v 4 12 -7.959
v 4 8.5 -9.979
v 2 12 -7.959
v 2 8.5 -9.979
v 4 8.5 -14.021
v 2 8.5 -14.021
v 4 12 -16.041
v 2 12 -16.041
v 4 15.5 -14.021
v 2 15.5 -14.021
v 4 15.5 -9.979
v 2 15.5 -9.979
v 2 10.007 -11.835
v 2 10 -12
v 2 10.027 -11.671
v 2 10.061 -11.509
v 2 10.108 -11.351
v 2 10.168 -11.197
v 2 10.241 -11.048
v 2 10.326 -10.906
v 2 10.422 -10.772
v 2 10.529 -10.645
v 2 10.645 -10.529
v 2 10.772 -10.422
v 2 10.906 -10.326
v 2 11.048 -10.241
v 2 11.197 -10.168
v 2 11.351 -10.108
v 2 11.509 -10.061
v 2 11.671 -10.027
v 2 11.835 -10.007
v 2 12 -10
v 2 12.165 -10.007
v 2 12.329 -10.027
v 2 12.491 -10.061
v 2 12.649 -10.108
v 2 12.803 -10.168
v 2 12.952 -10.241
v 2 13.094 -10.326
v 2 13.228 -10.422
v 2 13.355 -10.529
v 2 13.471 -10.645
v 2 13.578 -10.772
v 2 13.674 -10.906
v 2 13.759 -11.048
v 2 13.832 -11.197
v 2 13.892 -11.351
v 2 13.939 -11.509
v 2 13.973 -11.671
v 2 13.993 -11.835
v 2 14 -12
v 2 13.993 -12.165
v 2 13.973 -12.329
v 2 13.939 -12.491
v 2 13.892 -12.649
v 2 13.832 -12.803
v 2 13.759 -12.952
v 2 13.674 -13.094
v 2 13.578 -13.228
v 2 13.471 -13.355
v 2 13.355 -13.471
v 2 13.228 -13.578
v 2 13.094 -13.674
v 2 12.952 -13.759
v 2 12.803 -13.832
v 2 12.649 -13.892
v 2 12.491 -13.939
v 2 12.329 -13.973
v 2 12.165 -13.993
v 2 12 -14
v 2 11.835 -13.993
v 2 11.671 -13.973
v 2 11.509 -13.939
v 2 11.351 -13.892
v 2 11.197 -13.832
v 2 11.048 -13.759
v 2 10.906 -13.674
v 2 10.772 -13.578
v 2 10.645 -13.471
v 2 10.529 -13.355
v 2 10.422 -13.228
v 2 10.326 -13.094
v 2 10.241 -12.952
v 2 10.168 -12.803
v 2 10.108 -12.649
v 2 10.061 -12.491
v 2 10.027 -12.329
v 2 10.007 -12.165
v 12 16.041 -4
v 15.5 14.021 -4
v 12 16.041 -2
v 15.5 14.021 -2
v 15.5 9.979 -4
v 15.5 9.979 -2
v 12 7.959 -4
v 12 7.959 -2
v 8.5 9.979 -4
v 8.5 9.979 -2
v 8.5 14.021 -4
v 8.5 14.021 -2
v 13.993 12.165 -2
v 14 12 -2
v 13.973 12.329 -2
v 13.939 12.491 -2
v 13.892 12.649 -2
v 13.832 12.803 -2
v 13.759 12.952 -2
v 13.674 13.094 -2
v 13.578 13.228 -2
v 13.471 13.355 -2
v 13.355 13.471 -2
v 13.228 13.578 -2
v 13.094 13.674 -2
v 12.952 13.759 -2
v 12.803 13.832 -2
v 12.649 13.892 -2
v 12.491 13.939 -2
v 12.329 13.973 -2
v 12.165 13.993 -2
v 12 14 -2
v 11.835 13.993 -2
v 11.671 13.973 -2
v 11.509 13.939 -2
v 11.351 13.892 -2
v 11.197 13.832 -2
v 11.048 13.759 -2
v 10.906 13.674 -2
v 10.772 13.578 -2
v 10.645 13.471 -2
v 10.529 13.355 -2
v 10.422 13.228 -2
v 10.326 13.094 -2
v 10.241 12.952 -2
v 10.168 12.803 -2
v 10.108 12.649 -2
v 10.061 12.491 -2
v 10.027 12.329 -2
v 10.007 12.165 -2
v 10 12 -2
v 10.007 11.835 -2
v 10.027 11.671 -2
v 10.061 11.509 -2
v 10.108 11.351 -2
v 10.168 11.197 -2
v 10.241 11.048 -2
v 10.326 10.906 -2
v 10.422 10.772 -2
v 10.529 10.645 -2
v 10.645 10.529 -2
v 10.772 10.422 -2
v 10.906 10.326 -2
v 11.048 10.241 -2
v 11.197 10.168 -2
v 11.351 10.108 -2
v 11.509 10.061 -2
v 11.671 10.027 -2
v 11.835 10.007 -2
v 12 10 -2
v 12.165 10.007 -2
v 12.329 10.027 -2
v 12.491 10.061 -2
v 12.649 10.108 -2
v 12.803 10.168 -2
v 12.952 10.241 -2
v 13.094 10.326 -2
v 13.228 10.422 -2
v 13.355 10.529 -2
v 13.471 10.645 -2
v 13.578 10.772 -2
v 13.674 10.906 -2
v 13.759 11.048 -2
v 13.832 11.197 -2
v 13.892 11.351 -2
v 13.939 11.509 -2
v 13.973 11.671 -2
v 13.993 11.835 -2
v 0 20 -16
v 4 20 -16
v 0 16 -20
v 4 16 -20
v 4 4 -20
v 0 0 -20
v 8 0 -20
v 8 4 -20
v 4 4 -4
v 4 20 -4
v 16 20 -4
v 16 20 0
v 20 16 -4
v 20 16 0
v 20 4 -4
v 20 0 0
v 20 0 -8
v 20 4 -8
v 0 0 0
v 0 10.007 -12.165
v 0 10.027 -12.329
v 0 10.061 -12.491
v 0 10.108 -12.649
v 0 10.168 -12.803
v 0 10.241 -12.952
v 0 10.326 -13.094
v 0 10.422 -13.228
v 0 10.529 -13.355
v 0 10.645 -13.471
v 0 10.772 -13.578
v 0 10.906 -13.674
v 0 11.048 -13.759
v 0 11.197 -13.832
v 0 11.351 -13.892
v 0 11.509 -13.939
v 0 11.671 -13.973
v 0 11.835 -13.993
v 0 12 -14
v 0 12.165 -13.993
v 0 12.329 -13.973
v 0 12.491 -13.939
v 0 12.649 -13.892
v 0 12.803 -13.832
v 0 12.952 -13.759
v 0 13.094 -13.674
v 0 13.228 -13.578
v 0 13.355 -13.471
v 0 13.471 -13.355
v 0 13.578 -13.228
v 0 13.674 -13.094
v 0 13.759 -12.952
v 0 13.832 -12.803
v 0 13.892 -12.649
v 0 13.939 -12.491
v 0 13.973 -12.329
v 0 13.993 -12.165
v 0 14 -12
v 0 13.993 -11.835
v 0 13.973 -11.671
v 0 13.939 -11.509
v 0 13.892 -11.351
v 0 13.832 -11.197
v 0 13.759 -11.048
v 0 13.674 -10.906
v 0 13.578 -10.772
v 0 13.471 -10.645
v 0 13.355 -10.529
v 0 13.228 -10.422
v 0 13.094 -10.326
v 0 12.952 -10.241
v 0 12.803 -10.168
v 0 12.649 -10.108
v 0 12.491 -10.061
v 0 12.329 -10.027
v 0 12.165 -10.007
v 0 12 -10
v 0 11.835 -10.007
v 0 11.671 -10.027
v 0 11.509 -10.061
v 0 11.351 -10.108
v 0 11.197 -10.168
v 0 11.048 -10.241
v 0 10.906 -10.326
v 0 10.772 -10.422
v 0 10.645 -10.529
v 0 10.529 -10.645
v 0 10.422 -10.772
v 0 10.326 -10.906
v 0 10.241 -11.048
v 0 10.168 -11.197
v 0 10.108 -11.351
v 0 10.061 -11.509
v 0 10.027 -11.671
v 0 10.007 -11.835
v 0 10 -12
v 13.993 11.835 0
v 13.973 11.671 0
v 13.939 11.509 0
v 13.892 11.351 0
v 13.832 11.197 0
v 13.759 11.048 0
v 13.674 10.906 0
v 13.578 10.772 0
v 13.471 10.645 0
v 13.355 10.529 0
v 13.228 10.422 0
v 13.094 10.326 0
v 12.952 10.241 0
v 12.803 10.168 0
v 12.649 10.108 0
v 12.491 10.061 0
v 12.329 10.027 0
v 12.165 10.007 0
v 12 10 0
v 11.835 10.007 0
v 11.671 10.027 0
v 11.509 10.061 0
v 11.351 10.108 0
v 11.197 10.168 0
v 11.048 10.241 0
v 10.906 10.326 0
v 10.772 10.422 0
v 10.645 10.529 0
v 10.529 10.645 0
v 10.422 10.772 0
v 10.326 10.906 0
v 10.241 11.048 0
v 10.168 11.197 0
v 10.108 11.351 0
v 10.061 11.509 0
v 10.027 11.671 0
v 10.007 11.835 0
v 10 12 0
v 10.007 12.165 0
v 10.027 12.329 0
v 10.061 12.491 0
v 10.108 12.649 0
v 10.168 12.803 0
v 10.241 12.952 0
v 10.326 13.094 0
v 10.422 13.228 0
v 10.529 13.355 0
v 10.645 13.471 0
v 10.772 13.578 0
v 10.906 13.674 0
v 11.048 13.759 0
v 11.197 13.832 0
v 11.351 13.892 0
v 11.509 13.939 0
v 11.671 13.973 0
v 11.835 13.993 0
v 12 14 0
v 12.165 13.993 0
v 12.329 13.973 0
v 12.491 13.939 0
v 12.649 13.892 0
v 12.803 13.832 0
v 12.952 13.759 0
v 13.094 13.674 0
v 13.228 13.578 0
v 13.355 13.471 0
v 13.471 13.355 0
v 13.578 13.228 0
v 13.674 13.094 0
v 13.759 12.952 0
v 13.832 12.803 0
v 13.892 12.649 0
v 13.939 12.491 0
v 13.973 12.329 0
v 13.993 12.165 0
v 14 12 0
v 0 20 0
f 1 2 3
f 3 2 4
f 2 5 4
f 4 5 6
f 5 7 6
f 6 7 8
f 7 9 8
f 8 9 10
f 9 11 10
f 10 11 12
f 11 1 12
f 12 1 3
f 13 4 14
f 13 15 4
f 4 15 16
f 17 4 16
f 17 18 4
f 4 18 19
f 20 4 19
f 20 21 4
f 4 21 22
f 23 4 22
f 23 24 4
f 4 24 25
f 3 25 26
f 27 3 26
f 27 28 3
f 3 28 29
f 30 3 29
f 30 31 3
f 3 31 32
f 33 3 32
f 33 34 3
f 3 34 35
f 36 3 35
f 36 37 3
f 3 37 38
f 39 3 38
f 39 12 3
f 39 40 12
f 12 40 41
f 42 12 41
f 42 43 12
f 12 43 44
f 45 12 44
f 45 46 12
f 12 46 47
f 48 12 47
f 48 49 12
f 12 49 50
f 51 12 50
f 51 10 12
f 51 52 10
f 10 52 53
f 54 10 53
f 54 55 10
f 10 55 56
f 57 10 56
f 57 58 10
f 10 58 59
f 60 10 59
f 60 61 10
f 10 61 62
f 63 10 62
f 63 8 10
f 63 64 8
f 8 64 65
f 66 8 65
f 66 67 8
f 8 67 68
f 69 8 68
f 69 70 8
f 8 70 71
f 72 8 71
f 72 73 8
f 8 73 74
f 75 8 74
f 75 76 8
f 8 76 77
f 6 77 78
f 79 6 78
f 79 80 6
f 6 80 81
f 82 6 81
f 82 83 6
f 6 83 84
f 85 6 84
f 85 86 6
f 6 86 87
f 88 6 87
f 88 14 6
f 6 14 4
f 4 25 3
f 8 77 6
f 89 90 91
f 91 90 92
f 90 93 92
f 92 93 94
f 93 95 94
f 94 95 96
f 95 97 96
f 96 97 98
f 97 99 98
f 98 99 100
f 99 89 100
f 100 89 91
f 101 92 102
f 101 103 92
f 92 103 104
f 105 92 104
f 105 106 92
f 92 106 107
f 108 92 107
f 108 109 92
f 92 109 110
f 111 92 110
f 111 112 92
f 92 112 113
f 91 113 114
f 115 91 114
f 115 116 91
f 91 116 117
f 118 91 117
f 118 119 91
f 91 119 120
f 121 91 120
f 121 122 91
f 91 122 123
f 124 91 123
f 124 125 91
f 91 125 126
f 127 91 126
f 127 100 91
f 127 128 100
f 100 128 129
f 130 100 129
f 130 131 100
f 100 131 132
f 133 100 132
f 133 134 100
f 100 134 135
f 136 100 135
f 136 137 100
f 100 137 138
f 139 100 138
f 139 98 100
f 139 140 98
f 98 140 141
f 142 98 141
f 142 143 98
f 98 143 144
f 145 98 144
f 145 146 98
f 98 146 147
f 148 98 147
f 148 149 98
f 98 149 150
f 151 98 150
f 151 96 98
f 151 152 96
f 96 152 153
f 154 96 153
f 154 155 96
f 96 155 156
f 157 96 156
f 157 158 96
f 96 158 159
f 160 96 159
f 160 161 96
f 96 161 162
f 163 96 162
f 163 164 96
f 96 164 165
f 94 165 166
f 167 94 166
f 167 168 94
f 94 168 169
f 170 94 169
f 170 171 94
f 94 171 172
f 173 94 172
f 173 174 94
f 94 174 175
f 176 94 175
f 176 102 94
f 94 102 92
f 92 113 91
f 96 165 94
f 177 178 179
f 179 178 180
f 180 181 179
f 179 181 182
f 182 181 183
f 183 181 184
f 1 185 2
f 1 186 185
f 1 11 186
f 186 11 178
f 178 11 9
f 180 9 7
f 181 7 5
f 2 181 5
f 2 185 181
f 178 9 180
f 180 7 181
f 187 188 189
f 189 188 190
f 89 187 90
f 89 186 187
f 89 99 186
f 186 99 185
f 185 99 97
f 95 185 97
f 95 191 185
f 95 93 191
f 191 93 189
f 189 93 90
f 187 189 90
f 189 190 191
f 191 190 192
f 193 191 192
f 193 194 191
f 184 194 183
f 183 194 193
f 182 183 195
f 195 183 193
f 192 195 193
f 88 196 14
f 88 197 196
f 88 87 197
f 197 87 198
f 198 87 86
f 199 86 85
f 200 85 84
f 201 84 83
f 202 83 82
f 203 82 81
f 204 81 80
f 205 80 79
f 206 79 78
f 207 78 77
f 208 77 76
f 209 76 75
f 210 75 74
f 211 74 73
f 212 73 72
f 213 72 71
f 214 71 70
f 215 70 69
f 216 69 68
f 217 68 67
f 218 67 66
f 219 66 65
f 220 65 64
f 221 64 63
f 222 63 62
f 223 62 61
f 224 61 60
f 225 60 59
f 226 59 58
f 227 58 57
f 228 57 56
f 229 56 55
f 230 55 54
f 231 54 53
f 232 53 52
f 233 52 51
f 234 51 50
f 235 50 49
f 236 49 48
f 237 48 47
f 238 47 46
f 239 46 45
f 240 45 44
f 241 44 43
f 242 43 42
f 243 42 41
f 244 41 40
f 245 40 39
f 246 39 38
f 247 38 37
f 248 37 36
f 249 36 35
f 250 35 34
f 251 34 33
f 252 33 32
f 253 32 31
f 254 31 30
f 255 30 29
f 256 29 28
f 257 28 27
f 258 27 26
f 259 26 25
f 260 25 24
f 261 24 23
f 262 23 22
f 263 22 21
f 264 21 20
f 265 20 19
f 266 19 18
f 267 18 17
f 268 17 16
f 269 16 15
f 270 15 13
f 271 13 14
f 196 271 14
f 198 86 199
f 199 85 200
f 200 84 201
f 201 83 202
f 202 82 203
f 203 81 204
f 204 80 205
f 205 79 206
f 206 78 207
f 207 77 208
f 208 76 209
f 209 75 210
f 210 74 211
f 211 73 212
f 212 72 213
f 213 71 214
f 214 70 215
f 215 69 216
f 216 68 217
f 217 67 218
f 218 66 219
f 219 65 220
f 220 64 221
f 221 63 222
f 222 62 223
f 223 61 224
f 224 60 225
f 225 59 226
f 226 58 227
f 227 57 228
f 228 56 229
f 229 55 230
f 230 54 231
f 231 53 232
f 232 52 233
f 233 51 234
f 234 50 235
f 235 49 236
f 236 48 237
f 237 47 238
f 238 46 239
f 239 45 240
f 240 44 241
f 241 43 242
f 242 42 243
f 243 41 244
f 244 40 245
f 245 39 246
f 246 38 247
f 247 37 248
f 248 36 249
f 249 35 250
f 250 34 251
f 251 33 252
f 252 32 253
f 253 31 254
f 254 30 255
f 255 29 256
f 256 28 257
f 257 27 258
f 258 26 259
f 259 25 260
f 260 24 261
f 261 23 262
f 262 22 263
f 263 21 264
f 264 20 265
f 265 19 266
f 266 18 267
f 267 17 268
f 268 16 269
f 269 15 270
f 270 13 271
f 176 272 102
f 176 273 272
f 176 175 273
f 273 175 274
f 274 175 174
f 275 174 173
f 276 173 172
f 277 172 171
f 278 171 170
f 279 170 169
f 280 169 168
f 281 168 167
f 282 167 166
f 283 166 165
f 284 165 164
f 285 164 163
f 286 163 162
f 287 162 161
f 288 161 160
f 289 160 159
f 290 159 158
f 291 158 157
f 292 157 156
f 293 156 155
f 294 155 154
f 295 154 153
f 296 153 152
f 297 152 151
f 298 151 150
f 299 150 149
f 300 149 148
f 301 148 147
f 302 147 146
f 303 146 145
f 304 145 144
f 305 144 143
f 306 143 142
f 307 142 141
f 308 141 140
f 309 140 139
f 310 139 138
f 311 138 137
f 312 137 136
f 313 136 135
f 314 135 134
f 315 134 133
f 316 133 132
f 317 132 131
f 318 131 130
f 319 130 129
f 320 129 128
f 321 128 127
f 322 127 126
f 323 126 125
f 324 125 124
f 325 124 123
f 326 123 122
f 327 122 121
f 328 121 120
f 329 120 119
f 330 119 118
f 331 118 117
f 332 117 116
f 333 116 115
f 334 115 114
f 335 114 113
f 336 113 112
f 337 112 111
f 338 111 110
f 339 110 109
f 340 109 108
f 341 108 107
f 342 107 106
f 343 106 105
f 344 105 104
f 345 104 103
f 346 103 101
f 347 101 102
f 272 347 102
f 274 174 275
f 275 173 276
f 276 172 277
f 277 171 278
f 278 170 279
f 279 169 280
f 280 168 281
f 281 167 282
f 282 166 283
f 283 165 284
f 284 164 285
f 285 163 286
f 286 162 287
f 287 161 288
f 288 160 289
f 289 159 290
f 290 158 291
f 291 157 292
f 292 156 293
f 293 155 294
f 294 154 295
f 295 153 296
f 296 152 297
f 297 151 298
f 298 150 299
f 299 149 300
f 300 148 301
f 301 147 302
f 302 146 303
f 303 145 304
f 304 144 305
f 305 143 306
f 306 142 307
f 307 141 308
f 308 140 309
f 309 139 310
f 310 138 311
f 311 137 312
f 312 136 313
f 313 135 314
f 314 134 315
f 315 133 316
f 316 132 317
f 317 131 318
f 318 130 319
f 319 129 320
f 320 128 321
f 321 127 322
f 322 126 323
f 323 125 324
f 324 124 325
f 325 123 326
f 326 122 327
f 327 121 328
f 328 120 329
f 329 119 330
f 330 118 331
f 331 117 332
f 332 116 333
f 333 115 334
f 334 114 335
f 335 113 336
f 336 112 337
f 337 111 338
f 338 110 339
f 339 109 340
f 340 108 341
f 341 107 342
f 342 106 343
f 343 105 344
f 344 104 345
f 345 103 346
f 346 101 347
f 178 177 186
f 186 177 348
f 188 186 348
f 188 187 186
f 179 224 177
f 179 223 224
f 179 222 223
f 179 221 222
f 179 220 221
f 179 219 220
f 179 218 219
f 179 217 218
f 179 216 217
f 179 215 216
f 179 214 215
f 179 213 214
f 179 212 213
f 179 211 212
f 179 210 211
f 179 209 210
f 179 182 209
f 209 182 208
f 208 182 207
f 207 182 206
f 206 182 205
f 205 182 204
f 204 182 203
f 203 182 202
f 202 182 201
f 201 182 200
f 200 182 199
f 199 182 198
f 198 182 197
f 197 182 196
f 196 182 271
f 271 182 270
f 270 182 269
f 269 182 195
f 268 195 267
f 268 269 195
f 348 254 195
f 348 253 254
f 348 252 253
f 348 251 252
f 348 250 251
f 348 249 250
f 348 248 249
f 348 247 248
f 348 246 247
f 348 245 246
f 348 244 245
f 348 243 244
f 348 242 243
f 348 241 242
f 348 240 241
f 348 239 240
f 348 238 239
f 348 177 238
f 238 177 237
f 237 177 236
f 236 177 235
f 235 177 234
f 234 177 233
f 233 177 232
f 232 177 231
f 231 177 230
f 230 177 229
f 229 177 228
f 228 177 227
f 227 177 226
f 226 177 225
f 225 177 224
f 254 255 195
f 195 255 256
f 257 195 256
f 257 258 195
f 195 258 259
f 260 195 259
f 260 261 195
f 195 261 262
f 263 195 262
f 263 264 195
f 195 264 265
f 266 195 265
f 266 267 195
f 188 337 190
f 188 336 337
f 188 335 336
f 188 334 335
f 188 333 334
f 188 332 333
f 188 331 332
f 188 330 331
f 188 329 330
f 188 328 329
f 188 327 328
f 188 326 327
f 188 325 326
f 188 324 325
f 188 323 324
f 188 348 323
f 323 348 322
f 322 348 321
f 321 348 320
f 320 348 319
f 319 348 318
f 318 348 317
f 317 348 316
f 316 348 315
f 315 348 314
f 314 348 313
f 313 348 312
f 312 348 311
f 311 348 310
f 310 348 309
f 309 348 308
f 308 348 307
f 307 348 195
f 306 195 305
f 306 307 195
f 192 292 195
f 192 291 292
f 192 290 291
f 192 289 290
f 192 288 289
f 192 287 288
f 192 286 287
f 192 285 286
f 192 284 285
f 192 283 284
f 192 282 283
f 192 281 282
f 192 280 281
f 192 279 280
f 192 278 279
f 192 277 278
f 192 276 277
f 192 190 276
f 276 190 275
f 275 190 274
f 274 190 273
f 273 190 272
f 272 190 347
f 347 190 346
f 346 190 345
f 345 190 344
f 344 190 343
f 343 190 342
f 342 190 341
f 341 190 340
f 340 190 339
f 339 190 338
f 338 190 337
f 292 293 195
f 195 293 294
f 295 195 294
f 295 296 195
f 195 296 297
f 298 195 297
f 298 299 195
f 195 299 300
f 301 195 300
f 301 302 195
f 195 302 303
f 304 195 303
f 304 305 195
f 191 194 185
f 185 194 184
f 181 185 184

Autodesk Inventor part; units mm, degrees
ref_plane "YZ Plane" through (0, 0, 0) normal (1, 0, 0) x (0, 1, 0)
ref_plane "XZ Plane" through (0, 0, 0) normal (0, 1, 0) x (-1, 0, 0)
ref_plane "XY Plane" through (0, 0, 0) normal (0, 0, 1) x (1, 0, 0)
sketch "Sketch1" plane through (0, 0, 0) normal (0, 1, 0) x (-1, 0, 0)
  line L0 (0, 0) -> (-20, 0)
  line L1 (-20, 0) -> (-20, -20)
  line L2 (-20, -20) -> (0, -20)
  line L3 (0, -20) -> (0, 0)
  dimension "d0" = 20
  dimension "d1" = 20
extrude "Extrusion1" add sketch "Sketch1" along normal blind 4
sketch "Sketch2" plane through (0, 4, 0) normal (0, 1, 0) x (1, 0, 0)
  line L0 (0, 0) -> (20, 0)
  line L1 (20, 0) -> (20, 4)
  line L2 (20, 4) -> (4, 4)
  line L3 (0, 4) -> (0, 0)
  line L4 (0, 0) -> (4, 0)
  line L5 (4, 20) -> (0, 20)
  line L6 (0, 20) -> (0, 0)
  line L7 (4, 4) -> (4, 20)
  line L8 (0, 0) -> (20, 0) projected
  line L9 (0, 0) -> (20, 0)
  line L10 (0, 20) -> (0, 0) projected
  line L11 (0, 0) -> (0, 20)
extrude "Extrusion2" add sketch "Sketch2" along normal blind 16
hole "Hole2" at (12, 12, -4) direction (0, 0, 1) diameter 4 end through all
hole "Hole3" at (4, 12, -12) direction (-1, 0, 0) diameter 4 end through all
chamfer "Chamfer1" distance 12 angle 45 1 edges at (20, 2, -20)
chamfer "Chamfer2" distance 4 angle 45 1 edges at (20, 20, -2)
chamfer "Chamfer3" distance 4 angle 45 1 edges at (2, 20, -20)
sketch "Sketch3" plane through (20, 4, -4) normal (0, 0, -1) x (-1, 0, 0)
  line L0 (8, 12.0415) -> (11.5, 10.0207)
  line L1 (11.5, 10.0207) -> (11.5, 5.9793)
  line L2 (11.5, 5.9793) -> (8, 3.9585)
  line L3 (8, 3.9585) -> (4.5, 5.9793)
  line L4 (4.5, 5.9793) -> (4.5, 10.0207)
  line L5 (4.5, 10.0207) -> (8, 12.0415)
  point P0 (20, -4)
  point P1 (8, 8)
  dimension "d51" = 7
sketch "Sketch4" plane through (4, 4, -4) normal (1, 0, 0) x (0, 0, -1)
  line L0 (3.9585, 8) -> (5.9793, 11.5)
  line L1 (5.9793, 11.5) -> (10.0207, 11.5)
  line L2 (10.0207, 11.5) -> (12.0415, 8)
  line L3 (12.0415, 8) -> (10.0207, 4.5)
  line L4 (10.0207, 4.5) -> (5.9793, 4.5)
  line L5 (5.9793, 4.5) -> (3.9585, 8)
  point P0 (-4, -4)
  point P1 (8, 8)
  dimension "d52" = 7
extrude "Extrusion3" cut sketch "Sketch3" against normal blind 2
extrude "Extrusion4" cut sketch "Sketch4" against normal blind 2
properties part number "Frame2WayBlock" material "PLA Orange"
